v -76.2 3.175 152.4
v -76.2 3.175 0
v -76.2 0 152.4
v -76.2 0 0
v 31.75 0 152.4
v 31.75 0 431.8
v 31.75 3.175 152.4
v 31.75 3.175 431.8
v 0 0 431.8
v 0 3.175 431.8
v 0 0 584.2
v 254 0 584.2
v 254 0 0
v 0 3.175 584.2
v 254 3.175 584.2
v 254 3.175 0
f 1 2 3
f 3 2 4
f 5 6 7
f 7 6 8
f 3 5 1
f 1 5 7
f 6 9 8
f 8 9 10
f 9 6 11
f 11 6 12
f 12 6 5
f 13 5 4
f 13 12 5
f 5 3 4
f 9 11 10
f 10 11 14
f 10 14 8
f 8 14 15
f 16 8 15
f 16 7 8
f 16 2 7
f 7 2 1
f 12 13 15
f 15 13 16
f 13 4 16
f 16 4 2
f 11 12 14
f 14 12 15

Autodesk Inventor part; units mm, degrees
ref_plane "YZ Plane" through (0, 0, 0) normal (1, 0, 0) x (0, 1, 0)
ref_plane "XZ Plane" through (0, 0, 0) normal (0, 1, 0) x (-1, 0, 0)
ref_plane "XY Plane" through (0, 0, 0) normal (0, 0, 1) x (1, 0, 0)
sketch "Sketch1" plane through (0, 0, 0) normal (0, 0, 1) x (1, 0, 0)
  line L0 (0, 0) -> (254, 0)
  line L1 (254, 0) -> (254, 3.175)
  line L2 (254, 3.175) -> (0, 3.175)
  line L3 (0, 3.175) -> (0, 0)
  dimension "d0" = 254
  dimension "d1" = 3.175
extrude "Extrusion1" add sketch "Sketch1" along normal blind 584.2
sketch "Sketch2" plane through (0, 3.175, 0) normal (0, 1, 0) x (1, 0, 0)
  line L0 (0, -584.2) -> (254, -584.2) projected
  line L1 (254, 0) -> (0, 0) projected
  line L2 (0, 0) -> (0, -584.2) projected
  line L3 (0, -152.4) -> (31.75, -152.4)
  line L4 (31.75, -152.4) -> (31.75, -431.8)
  line L5 (31.75, -431.8) -> (0, -431.8)
  line L6 (0, -431.8) -> (0, -152.4)
  line L7 (31.75, -152.4) -> (31.75, 0) construction
  line L8 (31.75, -431.8) -> (31.75, -584.2) construction
  dimension "d4" = 31.75
  dimension "d5" = 279.4
extrude "Extrusion2" cut sketch "Sketch2" against normal through all
sketch "Sketch3" plane through (0, 0, 0) normal (-1, 0, 0) x (0, 0, 1)
  line L0 (0, 0) -> (152.4, 0)
  line L1 (152.4, 0) -> (152.4, 3.175)
  line L2 (152.4, 3.175) -> (0, 3.175)
  line L3 (0, 3.175) -> (0, 0)
extrude "Extrusion3" add sketch "Sketch3" along normal blind 76.2
properties part number "Board_V1" material "ABS Plastic"
